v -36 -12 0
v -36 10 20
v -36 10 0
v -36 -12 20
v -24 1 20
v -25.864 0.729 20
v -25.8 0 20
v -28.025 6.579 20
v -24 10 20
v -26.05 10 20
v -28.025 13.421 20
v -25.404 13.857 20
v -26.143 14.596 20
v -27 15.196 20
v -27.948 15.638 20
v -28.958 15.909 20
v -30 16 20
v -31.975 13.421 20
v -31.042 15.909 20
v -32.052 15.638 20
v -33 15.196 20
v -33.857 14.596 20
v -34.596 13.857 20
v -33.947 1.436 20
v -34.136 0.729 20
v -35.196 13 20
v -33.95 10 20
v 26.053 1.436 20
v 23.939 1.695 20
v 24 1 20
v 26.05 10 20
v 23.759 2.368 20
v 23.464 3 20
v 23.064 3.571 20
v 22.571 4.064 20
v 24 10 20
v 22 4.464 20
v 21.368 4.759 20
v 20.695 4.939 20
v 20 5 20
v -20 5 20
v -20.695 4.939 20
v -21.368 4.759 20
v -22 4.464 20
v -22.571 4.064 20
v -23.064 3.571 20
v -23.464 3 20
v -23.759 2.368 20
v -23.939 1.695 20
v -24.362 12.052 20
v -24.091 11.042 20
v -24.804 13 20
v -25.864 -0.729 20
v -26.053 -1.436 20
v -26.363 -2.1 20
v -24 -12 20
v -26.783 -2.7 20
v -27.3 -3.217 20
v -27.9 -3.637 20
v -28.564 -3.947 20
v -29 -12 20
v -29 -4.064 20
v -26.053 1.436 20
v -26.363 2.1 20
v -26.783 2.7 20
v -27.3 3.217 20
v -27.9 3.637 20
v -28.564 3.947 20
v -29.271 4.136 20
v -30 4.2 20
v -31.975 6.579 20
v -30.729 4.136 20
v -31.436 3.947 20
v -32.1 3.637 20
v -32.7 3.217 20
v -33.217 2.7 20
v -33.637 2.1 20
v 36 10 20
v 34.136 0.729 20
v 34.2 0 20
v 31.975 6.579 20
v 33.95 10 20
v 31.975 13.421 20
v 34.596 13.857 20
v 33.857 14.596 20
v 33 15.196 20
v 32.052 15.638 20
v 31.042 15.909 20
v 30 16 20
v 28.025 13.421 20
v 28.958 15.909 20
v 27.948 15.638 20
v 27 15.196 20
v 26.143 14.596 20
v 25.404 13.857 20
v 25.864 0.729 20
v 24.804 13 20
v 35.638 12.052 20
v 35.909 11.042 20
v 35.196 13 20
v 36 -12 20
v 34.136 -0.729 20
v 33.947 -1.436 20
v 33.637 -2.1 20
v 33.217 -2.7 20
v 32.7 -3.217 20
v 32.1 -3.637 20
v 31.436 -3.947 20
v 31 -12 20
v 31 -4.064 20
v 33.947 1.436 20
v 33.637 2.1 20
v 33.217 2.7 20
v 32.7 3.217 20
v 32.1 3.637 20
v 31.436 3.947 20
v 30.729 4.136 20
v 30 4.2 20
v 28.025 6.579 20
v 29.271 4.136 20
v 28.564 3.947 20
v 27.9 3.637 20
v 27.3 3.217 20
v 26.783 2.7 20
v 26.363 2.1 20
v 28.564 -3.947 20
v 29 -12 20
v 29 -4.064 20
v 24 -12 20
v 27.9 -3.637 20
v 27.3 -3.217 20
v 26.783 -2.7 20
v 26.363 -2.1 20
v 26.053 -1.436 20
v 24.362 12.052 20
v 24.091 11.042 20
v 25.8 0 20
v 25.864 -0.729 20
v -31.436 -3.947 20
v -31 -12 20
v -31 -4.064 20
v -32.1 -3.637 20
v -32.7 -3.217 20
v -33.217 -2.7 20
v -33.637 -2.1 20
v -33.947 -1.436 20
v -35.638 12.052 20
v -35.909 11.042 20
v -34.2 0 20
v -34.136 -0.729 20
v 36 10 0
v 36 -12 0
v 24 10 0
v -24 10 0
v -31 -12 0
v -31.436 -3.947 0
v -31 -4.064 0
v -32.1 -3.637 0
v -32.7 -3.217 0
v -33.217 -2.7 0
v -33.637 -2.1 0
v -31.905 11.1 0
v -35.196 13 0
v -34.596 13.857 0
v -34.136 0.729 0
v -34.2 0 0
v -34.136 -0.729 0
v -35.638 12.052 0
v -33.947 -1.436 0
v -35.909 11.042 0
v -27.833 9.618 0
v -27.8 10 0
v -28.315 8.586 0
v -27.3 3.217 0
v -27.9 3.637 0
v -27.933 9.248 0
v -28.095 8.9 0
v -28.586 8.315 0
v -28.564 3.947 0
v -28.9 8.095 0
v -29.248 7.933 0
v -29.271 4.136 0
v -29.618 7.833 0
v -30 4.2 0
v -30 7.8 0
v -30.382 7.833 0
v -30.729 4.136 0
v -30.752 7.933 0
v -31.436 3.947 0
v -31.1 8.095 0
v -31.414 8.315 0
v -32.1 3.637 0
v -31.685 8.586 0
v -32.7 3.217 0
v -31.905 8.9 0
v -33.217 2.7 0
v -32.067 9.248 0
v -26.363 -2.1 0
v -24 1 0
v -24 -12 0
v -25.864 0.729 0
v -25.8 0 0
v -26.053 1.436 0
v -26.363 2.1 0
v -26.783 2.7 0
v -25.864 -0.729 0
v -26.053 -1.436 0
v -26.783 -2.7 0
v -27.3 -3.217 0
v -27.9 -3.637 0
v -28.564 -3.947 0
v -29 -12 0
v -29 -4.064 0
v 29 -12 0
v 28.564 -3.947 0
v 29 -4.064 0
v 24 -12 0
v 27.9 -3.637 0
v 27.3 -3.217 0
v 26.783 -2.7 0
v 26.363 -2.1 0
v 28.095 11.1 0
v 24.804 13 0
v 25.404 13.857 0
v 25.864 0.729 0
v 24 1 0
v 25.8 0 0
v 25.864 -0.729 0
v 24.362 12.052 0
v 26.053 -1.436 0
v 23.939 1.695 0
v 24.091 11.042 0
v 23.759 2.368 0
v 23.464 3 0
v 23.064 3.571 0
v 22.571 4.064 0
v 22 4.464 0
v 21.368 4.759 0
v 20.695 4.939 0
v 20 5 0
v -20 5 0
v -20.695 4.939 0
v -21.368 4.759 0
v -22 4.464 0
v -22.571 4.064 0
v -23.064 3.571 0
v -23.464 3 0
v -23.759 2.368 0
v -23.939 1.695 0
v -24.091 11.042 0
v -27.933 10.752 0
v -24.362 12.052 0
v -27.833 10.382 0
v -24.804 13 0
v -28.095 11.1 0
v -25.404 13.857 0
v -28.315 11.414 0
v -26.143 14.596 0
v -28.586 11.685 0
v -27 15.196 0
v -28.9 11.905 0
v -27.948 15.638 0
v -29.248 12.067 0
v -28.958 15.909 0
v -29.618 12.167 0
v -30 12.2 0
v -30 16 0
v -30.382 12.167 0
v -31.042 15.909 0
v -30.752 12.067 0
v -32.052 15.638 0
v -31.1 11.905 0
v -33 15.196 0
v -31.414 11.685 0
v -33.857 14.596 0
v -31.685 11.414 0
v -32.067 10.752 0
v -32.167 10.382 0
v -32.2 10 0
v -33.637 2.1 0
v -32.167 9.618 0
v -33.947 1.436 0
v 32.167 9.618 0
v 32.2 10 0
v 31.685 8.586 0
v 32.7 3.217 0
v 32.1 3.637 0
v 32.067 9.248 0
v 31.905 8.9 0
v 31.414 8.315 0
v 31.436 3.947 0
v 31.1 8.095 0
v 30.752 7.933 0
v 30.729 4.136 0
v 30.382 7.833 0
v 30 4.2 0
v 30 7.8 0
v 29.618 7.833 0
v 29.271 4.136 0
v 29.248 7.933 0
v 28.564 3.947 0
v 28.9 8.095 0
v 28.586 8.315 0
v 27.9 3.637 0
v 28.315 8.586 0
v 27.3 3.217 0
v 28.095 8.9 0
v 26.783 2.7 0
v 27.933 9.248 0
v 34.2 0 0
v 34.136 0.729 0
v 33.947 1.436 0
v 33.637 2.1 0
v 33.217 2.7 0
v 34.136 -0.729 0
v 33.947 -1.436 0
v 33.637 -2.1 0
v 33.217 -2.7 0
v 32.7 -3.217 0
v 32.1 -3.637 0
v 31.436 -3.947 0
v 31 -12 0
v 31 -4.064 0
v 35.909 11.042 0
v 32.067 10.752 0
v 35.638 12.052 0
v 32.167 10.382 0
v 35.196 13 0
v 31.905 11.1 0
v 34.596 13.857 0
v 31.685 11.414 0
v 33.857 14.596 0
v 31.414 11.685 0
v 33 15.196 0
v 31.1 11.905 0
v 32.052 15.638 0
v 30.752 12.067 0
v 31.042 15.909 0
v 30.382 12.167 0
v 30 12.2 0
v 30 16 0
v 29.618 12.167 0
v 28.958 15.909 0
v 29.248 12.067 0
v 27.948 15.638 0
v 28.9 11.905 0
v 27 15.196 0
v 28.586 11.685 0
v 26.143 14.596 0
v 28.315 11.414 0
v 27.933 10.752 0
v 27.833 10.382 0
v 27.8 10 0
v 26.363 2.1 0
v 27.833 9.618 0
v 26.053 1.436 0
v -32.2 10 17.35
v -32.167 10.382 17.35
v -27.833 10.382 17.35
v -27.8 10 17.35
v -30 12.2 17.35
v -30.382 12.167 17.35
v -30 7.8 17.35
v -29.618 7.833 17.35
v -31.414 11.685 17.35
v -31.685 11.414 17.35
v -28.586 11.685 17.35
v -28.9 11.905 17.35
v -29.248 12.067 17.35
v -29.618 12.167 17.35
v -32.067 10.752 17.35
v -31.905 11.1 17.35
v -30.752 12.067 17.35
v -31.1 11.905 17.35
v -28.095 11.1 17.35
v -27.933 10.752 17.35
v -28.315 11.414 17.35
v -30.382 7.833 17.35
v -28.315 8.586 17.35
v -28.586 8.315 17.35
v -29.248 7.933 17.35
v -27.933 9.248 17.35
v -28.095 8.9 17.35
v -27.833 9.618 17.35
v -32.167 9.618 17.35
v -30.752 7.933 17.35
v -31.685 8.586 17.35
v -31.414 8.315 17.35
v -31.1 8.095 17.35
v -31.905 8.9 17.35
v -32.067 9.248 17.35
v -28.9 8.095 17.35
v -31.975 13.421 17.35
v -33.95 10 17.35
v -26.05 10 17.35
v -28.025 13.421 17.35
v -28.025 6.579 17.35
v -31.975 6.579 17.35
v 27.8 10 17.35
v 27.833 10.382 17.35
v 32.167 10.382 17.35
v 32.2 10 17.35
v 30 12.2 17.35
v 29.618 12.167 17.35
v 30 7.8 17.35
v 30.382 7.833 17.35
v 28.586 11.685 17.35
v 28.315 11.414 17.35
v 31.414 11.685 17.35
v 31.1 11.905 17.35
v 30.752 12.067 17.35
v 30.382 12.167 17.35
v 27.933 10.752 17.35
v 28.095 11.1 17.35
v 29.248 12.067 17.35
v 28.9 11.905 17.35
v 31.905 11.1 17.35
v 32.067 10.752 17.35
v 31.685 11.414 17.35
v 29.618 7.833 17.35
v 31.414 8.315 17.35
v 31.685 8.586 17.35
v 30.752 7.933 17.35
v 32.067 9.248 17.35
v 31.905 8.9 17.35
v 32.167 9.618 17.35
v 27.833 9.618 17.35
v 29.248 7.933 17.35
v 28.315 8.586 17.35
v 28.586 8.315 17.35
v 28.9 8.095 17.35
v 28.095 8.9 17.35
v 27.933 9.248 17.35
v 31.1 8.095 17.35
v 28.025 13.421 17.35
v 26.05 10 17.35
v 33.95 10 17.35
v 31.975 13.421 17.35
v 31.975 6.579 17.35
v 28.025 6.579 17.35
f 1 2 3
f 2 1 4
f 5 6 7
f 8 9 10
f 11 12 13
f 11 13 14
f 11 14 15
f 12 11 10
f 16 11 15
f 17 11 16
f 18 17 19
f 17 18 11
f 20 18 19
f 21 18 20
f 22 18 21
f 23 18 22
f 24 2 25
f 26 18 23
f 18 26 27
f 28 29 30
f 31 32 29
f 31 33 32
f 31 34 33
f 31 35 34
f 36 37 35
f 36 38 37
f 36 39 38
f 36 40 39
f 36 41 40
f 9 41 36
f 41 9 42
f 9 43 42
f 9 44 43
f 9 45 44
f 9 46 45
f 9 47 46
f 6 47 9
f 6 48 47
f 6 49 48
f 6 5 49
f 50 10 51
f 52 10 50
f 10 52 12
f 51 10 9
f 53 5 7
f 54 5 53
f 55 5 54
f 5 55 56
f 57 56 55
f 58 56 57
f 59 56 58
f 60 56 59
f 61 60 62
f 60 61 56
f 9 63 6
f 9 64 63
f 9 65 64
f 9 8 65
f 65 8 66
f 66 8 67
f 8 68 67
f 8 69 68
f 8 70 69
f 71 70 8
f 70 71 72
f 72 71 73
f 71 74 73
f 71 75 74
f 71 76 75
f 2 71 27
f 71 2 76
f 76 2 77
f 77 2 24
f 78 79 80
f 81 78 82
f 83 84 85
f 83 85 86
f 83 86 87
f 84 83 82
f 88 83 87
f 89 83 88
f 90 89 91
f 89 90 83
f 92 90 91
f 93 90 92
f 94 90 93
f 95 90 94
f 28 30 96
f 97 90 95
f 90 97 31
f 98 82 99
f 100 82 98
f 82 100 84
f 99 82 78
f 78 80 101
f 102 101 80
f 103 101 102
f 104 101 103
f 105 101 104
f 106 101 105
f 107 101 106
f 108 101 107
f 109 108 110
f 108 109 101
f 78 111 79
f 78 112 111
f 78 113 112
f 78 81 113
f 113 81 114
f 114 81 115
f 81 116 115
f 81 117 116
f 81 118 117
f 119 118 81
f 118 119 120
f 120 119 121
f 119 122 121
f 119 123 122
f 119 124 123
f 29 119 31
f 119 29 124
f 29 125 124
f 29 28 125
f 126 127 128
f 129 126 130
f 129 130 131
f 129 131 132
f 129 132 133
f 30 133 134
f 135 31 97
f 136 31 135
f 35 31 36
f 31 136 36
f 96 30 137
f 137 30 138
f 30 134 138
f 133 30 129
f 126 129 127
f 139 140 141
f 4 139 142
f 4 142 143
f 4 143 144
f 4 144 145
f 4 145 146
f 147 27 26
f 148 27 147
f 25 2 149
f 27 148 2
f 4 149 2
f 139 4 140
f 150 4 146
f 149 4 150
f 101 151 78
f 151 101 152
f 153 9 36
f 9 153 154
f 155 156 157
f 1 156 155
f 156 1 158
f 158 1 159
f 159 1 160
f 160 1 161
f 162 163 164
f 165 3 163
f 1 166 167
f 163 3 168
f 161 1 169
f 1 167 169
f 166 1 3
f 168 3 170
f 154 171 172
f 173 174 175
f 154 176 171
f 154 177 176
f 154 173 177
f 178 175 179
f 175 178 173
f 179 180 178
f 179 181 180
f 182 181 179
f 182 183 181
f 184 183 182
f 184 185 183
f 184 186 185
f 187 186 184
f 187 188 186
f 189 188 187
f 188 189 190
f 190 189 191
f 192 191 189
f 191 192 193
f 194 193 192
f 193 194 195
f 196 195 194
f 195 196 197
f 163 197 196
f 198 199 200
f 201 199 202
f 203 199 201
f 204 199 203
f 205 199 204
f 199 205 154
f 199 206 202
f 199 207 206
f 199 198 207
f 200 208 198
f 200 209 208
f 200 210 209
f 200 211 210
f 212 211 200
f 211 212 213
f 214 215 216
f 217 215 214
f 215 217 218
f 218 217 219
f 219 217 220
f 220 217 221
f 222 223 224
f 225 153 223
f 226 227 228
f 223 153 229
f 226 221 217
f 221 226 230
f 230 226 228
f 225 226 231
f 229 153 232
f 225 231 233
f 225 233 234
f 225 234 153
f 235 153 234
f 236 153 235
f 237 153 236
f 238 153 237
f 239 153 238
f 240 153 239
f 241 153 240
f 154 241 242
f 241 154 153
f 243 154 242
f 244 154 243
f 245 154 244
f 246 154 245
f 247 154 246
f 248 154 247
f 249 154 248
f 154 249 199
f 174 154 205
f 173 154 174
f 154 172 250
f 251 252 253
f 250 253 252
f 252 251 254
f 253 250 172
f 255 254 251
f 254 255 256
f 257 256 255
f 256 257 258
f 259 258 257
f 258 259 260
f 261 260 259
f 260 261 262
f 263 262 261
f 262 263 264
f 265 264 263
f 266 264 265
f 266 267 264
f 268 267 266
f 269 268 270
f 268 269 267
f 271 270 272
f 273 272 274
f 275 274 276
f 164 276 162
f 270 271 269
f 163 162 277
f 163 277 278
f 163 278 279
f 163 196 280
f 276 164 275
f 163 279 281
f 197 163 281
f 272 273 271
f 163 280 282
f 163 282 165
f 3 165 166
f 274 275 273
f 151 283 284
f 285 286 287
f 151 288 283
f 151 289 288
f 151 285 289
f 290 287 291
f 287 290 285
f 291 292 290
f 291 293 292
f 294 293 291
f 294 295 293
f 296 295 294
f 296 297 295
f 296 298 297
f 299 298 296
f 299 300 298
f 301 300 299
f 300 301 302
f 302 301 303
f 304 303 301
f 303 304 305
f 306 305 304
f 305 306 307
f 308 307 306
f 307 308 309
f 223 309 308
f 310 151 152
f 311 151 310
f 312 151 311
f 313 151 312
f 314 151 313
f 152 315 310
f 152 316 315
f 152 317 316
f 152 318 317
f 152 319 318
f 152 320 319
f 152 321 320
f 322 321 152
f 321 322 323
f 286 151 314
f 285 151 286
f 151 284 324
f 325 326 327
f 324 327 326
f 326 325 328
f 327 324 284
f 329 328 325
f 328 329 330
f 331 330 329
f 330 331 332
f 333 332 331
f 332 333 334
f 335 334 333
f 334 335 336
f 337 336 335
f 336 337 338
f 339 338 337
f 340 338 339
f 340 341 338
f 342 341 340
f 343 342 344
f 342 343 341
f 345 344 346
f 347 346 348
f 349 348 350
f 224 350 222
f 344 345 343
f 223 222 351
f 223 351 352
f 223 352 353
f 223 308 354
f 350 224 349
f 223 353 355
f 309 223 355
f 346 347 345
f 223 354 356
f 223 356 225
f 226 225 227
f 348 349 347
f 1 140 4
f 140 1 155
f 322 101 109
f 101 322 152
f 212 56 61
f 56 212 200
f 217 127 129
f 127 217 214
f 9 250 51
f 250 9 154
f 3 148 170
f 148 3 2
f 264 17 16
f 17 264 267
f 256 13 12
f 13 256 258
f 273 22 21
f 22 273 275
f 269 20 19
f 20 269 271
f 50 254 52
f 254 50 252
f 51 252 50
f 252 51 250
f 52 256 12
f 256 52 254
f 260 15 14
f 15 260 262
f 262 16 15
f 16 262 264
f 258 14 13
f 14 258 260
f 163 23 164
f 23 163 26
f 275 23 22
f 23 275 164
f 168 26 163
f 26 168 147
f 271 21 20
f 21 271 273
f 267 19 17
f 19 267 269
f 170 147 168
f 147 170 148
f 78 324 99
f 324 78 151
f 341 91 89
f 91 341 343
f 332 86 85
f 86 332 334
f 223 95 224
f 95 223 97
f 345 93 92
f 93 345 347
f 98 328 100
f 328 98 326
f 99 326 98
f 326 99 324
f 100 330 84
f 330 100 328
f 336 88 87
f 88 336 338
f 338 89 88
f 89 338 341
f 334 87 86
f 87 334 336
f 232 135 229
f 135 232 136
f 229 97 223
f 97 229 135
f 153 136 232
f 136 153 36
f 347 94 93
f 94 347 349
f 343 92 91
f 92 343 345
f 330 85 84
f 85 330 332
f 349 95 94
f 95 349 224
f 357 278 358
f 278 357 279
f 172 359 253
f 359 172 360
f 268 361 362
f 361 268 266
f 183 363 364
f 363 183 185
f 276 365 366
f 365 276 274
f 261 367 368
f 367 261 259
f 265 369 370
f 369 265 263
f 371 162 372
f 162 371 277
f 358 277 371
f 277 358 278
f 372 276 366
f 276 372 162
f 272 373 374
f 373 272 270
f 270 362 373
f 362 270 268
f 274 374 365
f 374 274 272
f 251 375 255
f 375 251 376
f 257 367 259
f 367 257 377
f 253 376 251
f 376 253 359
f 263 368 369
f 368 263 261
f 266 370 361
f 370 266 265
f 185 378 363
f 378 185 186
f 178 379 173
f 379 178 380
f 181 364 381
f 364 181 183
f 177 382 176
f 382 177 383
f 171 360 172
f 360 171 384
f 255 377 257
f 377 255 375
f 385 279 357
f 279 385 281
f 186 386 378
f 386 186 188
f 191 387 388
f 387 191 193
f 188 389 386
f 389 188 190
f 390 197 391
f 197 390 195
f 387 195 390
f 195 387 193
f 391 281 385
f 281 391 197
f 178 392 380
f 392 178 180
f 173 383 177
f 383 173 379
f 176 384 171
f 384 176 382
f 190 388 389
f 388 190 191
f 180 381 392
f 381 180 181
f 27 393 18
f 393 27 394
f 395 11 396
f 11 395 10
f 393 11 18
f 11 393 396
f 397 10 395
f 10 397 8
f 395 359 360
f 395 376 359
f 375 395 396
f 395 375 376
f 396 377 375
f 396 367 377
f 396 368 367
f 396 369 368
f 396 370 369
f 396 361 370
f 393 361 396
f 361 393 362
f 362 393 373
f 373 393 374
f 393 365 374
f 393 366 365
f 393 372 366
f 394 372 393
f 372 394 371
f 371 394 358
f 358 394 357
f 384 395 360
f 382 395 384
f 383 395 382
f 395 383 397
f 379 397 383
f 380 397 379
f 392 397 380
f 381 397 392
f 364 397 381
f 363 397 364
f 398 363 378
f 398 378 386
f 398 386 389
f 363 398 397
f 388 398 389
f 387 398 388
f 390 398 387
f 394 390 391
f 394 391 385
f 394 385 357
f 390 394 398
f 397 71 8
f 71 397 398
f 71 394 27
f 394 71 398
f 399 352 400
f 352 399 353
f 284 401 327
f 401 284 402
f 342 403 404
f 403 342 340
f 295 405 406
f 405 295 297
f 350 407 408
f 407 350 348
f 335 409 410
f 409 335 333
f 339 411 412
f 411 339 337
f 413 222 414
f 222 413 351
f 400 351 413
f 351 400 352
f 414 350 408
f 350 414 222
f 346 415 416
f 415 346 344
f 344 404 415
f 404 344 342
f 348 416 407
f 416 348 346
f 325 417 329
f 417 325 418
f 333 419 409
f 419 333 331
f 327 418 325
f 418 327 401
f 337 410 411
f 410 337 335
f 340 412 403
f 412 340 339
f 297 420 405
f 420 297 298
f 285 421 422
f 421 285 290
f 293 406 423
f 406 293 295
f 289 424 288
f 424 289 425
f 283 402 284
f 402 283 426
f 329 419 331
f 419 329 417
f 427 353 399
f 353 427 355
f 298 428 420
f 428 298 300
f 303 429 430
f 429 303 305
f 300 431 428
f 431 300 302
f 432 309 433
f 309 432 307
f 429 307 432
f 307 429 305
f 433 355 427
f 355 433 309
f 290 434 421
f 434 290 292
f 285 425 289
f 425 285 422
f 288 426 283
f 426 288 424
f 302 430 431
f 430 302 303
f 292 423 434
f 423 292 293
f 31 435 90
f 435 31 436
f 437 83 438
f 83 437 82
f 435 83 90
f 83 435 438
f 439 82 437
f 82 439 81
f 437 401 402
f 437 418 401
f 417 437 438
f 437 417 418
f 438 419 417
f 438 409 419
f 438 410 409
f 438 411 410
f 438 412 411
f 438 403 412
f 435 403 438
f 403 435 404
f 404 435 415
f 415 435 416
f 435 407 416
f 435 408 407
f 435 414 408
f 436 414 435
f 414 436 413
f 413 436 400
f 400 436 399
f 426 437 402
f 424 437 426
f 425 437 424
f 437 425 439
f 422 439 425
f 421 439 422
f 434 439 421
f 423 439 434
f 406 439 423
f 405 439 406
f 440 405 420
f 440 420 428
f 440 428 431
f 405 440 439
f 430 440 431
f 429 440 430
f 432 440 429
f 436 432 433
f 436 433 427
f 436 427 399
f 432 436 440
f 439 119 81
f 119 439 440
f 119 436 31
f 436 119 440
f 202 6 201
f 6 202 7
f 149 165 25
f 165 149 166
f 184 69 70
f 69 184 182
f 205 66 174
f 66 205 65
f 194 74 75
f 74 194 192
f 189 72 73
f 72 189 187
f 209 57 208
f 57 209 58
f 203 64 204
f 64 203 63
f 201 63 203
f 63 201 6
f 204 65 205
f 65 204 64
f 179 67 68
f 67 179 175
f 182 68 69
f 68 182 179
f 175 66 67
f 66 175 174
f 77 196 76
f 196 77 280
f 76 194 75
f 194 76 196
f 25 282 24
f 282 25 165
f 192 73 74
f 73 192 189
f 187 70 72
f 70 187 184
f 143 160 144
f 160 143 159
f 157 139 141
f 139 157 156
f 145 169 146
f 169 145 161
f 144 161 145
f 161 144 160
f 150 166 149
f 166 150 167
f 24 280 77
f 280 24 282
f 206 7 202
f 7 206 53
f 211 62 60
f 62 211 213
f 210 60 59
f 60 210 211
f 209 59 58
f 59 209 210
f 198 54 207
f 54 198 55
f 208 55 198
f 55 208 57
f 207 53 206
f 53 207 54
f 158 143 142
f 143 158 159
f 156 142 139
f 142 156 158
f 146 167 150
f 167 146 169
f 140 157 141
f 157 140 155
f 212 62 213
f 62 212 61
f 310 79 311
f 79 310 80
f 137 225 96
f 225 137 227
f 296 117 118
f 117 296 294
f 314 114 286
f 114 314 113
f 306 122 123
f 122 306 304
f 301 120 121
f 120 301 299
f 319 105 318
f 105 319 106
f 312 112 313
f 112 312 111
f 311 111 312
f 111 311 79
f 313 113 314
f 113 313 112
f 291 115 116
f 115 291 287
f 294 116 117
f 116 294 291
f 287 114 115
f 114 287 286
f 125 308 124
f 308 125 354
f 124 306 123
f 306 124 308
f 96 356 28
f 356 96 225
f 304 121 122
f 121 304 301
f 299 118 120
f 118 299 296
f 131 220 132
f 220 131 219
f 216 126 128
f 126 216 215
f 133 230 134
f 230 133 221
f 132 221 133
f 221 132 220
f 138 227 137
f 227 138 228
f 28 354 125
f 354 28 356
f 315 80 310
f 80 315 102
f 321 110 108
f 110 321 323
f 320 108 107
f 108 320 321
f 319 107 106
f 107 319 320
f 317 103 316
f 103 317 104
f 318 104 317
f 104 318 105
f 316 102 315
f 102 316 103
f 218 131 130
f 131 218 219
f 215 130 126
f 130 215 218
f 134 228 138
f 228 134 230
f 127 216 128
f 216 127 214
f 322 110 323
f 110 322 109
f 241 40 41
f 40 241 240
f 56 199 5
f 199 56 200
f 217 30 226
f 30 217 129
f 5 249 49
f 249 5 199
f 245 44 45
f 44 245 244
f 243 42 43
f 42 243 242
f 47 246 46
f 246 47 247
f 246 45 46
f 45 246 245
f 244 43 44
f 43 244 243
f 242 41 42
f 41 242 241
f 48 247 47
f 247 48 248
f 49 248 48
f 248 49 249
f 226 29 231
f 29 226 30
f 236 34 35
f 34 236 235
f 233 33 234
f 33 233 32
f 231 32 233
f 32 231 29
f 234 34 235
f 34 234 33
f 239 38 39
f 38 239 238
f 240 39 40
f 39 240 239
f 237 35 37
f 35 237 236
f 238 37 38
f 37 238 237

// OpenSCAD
/* 
Info: 
This part is just a template for the other parts of the linear drive.

Improvement: 
- diagonal fin is parametrised and reusable

TODO: 
- remove screw-models --> put in extra-file

*/

rod_distance = 60; // Smooth rod distance (center to center)
rod_hole_radius = 8.4/2;

M3_screw_hole_dia = 3.4;
M3_nut_hole_dia = 6.2+0.2;

M4_screw_hole_dia = 4.4;
M4_nut_hole_dia = 7.7+0.2;

$fn = 36;
$fa = 12;
$fs = 0.5;

module screw_M3(length) {
    cylinder(d=M3_screw_hole_dia, h=length);
	cylinder(d=M3_nut_hole_dia, h=2.3, center=true, $fn=6);
}

module screw_M4(length) {
    cylinder(d=M4_screw_hole_dia, h=length);
	cylinder(d=M4_nut_hole_dia, h=3.3, center=true, $fn=6);
}


module diagonal_fin2(height1, height2, length1, length2, width) 
{
    // height1: front side of fin
    // height2: back side of fin
    // length1: length all together
    // length2: of the "sinking" part
    ds = 3; // =y0, distance from the endpoints
    y1 = (length1-length2)/2;
    y2 = (length1+length2)/2;
    y3 = length1 - ds;
    surface = [ [0,ds], [height1,ds], [height1,y1], [height2,y2], [height2,y3], [0,y3] ];
    union() 
    {
    rotate([0,-90,0]) linear_extrude(width,center=true) polygon(points=surface);  
   
      // mounting screw hole.
   translate([0, length1, height2/2]) difference() {
   cylinder(r=5, h=height2, center=true);
   translate([0,0,height2/2-1]) rotate([0,180,0]) screw_M3(10); 
   }
   }
}
//diagonal_fin2(40, 6, 50, 40, 5);


module bracket(height) {
  w = rod_distance;
  difference() {
    union() {
      translate([0, -1, 0]) cube([w+12, 22, height], center=true);
      // Sandwich mount hull
      translate([-w/2, 10, 0]) cylinder(r=6, h=height, center=true);
      translate([+w/2, 10, 0]) cylinder(r=6, h=height, center=true);
    }
    // Sandwich mount screw holes
    translate([-w/2, 10, height/2-1]) rotate([0,180,0]) screw_M4(height);
    translate([+w/2, 10, height/2-1]) rotate([0,180,0]) screw_M4(height);

    // Smooth rod mounting slots.
    for (x = [-w/2, w/2]) {
      translate([x, 0, 0]) {
        cylinder(r=rod_hole_radius, h=height+1, center=true);
        translate([0, -10, 0]) cube([2, 20, height+1], center=true);
      }
    }
    // Belt path.
    translate([0, -5, 0]) cube([w-20, 20, height+1], center=true);
    translate([0, -9, 0]) cube([w-12, 20, height+1], center=true);
    translate([-w/2+10, 1, 0]) cylinder(r=4, h=height+1, center=true);
    translate([+w/2-10, 1, 0]) cylinder(r=4, h=height+1, center=true);
  }
}

translate([0, 0, 10]) bracket(20);
